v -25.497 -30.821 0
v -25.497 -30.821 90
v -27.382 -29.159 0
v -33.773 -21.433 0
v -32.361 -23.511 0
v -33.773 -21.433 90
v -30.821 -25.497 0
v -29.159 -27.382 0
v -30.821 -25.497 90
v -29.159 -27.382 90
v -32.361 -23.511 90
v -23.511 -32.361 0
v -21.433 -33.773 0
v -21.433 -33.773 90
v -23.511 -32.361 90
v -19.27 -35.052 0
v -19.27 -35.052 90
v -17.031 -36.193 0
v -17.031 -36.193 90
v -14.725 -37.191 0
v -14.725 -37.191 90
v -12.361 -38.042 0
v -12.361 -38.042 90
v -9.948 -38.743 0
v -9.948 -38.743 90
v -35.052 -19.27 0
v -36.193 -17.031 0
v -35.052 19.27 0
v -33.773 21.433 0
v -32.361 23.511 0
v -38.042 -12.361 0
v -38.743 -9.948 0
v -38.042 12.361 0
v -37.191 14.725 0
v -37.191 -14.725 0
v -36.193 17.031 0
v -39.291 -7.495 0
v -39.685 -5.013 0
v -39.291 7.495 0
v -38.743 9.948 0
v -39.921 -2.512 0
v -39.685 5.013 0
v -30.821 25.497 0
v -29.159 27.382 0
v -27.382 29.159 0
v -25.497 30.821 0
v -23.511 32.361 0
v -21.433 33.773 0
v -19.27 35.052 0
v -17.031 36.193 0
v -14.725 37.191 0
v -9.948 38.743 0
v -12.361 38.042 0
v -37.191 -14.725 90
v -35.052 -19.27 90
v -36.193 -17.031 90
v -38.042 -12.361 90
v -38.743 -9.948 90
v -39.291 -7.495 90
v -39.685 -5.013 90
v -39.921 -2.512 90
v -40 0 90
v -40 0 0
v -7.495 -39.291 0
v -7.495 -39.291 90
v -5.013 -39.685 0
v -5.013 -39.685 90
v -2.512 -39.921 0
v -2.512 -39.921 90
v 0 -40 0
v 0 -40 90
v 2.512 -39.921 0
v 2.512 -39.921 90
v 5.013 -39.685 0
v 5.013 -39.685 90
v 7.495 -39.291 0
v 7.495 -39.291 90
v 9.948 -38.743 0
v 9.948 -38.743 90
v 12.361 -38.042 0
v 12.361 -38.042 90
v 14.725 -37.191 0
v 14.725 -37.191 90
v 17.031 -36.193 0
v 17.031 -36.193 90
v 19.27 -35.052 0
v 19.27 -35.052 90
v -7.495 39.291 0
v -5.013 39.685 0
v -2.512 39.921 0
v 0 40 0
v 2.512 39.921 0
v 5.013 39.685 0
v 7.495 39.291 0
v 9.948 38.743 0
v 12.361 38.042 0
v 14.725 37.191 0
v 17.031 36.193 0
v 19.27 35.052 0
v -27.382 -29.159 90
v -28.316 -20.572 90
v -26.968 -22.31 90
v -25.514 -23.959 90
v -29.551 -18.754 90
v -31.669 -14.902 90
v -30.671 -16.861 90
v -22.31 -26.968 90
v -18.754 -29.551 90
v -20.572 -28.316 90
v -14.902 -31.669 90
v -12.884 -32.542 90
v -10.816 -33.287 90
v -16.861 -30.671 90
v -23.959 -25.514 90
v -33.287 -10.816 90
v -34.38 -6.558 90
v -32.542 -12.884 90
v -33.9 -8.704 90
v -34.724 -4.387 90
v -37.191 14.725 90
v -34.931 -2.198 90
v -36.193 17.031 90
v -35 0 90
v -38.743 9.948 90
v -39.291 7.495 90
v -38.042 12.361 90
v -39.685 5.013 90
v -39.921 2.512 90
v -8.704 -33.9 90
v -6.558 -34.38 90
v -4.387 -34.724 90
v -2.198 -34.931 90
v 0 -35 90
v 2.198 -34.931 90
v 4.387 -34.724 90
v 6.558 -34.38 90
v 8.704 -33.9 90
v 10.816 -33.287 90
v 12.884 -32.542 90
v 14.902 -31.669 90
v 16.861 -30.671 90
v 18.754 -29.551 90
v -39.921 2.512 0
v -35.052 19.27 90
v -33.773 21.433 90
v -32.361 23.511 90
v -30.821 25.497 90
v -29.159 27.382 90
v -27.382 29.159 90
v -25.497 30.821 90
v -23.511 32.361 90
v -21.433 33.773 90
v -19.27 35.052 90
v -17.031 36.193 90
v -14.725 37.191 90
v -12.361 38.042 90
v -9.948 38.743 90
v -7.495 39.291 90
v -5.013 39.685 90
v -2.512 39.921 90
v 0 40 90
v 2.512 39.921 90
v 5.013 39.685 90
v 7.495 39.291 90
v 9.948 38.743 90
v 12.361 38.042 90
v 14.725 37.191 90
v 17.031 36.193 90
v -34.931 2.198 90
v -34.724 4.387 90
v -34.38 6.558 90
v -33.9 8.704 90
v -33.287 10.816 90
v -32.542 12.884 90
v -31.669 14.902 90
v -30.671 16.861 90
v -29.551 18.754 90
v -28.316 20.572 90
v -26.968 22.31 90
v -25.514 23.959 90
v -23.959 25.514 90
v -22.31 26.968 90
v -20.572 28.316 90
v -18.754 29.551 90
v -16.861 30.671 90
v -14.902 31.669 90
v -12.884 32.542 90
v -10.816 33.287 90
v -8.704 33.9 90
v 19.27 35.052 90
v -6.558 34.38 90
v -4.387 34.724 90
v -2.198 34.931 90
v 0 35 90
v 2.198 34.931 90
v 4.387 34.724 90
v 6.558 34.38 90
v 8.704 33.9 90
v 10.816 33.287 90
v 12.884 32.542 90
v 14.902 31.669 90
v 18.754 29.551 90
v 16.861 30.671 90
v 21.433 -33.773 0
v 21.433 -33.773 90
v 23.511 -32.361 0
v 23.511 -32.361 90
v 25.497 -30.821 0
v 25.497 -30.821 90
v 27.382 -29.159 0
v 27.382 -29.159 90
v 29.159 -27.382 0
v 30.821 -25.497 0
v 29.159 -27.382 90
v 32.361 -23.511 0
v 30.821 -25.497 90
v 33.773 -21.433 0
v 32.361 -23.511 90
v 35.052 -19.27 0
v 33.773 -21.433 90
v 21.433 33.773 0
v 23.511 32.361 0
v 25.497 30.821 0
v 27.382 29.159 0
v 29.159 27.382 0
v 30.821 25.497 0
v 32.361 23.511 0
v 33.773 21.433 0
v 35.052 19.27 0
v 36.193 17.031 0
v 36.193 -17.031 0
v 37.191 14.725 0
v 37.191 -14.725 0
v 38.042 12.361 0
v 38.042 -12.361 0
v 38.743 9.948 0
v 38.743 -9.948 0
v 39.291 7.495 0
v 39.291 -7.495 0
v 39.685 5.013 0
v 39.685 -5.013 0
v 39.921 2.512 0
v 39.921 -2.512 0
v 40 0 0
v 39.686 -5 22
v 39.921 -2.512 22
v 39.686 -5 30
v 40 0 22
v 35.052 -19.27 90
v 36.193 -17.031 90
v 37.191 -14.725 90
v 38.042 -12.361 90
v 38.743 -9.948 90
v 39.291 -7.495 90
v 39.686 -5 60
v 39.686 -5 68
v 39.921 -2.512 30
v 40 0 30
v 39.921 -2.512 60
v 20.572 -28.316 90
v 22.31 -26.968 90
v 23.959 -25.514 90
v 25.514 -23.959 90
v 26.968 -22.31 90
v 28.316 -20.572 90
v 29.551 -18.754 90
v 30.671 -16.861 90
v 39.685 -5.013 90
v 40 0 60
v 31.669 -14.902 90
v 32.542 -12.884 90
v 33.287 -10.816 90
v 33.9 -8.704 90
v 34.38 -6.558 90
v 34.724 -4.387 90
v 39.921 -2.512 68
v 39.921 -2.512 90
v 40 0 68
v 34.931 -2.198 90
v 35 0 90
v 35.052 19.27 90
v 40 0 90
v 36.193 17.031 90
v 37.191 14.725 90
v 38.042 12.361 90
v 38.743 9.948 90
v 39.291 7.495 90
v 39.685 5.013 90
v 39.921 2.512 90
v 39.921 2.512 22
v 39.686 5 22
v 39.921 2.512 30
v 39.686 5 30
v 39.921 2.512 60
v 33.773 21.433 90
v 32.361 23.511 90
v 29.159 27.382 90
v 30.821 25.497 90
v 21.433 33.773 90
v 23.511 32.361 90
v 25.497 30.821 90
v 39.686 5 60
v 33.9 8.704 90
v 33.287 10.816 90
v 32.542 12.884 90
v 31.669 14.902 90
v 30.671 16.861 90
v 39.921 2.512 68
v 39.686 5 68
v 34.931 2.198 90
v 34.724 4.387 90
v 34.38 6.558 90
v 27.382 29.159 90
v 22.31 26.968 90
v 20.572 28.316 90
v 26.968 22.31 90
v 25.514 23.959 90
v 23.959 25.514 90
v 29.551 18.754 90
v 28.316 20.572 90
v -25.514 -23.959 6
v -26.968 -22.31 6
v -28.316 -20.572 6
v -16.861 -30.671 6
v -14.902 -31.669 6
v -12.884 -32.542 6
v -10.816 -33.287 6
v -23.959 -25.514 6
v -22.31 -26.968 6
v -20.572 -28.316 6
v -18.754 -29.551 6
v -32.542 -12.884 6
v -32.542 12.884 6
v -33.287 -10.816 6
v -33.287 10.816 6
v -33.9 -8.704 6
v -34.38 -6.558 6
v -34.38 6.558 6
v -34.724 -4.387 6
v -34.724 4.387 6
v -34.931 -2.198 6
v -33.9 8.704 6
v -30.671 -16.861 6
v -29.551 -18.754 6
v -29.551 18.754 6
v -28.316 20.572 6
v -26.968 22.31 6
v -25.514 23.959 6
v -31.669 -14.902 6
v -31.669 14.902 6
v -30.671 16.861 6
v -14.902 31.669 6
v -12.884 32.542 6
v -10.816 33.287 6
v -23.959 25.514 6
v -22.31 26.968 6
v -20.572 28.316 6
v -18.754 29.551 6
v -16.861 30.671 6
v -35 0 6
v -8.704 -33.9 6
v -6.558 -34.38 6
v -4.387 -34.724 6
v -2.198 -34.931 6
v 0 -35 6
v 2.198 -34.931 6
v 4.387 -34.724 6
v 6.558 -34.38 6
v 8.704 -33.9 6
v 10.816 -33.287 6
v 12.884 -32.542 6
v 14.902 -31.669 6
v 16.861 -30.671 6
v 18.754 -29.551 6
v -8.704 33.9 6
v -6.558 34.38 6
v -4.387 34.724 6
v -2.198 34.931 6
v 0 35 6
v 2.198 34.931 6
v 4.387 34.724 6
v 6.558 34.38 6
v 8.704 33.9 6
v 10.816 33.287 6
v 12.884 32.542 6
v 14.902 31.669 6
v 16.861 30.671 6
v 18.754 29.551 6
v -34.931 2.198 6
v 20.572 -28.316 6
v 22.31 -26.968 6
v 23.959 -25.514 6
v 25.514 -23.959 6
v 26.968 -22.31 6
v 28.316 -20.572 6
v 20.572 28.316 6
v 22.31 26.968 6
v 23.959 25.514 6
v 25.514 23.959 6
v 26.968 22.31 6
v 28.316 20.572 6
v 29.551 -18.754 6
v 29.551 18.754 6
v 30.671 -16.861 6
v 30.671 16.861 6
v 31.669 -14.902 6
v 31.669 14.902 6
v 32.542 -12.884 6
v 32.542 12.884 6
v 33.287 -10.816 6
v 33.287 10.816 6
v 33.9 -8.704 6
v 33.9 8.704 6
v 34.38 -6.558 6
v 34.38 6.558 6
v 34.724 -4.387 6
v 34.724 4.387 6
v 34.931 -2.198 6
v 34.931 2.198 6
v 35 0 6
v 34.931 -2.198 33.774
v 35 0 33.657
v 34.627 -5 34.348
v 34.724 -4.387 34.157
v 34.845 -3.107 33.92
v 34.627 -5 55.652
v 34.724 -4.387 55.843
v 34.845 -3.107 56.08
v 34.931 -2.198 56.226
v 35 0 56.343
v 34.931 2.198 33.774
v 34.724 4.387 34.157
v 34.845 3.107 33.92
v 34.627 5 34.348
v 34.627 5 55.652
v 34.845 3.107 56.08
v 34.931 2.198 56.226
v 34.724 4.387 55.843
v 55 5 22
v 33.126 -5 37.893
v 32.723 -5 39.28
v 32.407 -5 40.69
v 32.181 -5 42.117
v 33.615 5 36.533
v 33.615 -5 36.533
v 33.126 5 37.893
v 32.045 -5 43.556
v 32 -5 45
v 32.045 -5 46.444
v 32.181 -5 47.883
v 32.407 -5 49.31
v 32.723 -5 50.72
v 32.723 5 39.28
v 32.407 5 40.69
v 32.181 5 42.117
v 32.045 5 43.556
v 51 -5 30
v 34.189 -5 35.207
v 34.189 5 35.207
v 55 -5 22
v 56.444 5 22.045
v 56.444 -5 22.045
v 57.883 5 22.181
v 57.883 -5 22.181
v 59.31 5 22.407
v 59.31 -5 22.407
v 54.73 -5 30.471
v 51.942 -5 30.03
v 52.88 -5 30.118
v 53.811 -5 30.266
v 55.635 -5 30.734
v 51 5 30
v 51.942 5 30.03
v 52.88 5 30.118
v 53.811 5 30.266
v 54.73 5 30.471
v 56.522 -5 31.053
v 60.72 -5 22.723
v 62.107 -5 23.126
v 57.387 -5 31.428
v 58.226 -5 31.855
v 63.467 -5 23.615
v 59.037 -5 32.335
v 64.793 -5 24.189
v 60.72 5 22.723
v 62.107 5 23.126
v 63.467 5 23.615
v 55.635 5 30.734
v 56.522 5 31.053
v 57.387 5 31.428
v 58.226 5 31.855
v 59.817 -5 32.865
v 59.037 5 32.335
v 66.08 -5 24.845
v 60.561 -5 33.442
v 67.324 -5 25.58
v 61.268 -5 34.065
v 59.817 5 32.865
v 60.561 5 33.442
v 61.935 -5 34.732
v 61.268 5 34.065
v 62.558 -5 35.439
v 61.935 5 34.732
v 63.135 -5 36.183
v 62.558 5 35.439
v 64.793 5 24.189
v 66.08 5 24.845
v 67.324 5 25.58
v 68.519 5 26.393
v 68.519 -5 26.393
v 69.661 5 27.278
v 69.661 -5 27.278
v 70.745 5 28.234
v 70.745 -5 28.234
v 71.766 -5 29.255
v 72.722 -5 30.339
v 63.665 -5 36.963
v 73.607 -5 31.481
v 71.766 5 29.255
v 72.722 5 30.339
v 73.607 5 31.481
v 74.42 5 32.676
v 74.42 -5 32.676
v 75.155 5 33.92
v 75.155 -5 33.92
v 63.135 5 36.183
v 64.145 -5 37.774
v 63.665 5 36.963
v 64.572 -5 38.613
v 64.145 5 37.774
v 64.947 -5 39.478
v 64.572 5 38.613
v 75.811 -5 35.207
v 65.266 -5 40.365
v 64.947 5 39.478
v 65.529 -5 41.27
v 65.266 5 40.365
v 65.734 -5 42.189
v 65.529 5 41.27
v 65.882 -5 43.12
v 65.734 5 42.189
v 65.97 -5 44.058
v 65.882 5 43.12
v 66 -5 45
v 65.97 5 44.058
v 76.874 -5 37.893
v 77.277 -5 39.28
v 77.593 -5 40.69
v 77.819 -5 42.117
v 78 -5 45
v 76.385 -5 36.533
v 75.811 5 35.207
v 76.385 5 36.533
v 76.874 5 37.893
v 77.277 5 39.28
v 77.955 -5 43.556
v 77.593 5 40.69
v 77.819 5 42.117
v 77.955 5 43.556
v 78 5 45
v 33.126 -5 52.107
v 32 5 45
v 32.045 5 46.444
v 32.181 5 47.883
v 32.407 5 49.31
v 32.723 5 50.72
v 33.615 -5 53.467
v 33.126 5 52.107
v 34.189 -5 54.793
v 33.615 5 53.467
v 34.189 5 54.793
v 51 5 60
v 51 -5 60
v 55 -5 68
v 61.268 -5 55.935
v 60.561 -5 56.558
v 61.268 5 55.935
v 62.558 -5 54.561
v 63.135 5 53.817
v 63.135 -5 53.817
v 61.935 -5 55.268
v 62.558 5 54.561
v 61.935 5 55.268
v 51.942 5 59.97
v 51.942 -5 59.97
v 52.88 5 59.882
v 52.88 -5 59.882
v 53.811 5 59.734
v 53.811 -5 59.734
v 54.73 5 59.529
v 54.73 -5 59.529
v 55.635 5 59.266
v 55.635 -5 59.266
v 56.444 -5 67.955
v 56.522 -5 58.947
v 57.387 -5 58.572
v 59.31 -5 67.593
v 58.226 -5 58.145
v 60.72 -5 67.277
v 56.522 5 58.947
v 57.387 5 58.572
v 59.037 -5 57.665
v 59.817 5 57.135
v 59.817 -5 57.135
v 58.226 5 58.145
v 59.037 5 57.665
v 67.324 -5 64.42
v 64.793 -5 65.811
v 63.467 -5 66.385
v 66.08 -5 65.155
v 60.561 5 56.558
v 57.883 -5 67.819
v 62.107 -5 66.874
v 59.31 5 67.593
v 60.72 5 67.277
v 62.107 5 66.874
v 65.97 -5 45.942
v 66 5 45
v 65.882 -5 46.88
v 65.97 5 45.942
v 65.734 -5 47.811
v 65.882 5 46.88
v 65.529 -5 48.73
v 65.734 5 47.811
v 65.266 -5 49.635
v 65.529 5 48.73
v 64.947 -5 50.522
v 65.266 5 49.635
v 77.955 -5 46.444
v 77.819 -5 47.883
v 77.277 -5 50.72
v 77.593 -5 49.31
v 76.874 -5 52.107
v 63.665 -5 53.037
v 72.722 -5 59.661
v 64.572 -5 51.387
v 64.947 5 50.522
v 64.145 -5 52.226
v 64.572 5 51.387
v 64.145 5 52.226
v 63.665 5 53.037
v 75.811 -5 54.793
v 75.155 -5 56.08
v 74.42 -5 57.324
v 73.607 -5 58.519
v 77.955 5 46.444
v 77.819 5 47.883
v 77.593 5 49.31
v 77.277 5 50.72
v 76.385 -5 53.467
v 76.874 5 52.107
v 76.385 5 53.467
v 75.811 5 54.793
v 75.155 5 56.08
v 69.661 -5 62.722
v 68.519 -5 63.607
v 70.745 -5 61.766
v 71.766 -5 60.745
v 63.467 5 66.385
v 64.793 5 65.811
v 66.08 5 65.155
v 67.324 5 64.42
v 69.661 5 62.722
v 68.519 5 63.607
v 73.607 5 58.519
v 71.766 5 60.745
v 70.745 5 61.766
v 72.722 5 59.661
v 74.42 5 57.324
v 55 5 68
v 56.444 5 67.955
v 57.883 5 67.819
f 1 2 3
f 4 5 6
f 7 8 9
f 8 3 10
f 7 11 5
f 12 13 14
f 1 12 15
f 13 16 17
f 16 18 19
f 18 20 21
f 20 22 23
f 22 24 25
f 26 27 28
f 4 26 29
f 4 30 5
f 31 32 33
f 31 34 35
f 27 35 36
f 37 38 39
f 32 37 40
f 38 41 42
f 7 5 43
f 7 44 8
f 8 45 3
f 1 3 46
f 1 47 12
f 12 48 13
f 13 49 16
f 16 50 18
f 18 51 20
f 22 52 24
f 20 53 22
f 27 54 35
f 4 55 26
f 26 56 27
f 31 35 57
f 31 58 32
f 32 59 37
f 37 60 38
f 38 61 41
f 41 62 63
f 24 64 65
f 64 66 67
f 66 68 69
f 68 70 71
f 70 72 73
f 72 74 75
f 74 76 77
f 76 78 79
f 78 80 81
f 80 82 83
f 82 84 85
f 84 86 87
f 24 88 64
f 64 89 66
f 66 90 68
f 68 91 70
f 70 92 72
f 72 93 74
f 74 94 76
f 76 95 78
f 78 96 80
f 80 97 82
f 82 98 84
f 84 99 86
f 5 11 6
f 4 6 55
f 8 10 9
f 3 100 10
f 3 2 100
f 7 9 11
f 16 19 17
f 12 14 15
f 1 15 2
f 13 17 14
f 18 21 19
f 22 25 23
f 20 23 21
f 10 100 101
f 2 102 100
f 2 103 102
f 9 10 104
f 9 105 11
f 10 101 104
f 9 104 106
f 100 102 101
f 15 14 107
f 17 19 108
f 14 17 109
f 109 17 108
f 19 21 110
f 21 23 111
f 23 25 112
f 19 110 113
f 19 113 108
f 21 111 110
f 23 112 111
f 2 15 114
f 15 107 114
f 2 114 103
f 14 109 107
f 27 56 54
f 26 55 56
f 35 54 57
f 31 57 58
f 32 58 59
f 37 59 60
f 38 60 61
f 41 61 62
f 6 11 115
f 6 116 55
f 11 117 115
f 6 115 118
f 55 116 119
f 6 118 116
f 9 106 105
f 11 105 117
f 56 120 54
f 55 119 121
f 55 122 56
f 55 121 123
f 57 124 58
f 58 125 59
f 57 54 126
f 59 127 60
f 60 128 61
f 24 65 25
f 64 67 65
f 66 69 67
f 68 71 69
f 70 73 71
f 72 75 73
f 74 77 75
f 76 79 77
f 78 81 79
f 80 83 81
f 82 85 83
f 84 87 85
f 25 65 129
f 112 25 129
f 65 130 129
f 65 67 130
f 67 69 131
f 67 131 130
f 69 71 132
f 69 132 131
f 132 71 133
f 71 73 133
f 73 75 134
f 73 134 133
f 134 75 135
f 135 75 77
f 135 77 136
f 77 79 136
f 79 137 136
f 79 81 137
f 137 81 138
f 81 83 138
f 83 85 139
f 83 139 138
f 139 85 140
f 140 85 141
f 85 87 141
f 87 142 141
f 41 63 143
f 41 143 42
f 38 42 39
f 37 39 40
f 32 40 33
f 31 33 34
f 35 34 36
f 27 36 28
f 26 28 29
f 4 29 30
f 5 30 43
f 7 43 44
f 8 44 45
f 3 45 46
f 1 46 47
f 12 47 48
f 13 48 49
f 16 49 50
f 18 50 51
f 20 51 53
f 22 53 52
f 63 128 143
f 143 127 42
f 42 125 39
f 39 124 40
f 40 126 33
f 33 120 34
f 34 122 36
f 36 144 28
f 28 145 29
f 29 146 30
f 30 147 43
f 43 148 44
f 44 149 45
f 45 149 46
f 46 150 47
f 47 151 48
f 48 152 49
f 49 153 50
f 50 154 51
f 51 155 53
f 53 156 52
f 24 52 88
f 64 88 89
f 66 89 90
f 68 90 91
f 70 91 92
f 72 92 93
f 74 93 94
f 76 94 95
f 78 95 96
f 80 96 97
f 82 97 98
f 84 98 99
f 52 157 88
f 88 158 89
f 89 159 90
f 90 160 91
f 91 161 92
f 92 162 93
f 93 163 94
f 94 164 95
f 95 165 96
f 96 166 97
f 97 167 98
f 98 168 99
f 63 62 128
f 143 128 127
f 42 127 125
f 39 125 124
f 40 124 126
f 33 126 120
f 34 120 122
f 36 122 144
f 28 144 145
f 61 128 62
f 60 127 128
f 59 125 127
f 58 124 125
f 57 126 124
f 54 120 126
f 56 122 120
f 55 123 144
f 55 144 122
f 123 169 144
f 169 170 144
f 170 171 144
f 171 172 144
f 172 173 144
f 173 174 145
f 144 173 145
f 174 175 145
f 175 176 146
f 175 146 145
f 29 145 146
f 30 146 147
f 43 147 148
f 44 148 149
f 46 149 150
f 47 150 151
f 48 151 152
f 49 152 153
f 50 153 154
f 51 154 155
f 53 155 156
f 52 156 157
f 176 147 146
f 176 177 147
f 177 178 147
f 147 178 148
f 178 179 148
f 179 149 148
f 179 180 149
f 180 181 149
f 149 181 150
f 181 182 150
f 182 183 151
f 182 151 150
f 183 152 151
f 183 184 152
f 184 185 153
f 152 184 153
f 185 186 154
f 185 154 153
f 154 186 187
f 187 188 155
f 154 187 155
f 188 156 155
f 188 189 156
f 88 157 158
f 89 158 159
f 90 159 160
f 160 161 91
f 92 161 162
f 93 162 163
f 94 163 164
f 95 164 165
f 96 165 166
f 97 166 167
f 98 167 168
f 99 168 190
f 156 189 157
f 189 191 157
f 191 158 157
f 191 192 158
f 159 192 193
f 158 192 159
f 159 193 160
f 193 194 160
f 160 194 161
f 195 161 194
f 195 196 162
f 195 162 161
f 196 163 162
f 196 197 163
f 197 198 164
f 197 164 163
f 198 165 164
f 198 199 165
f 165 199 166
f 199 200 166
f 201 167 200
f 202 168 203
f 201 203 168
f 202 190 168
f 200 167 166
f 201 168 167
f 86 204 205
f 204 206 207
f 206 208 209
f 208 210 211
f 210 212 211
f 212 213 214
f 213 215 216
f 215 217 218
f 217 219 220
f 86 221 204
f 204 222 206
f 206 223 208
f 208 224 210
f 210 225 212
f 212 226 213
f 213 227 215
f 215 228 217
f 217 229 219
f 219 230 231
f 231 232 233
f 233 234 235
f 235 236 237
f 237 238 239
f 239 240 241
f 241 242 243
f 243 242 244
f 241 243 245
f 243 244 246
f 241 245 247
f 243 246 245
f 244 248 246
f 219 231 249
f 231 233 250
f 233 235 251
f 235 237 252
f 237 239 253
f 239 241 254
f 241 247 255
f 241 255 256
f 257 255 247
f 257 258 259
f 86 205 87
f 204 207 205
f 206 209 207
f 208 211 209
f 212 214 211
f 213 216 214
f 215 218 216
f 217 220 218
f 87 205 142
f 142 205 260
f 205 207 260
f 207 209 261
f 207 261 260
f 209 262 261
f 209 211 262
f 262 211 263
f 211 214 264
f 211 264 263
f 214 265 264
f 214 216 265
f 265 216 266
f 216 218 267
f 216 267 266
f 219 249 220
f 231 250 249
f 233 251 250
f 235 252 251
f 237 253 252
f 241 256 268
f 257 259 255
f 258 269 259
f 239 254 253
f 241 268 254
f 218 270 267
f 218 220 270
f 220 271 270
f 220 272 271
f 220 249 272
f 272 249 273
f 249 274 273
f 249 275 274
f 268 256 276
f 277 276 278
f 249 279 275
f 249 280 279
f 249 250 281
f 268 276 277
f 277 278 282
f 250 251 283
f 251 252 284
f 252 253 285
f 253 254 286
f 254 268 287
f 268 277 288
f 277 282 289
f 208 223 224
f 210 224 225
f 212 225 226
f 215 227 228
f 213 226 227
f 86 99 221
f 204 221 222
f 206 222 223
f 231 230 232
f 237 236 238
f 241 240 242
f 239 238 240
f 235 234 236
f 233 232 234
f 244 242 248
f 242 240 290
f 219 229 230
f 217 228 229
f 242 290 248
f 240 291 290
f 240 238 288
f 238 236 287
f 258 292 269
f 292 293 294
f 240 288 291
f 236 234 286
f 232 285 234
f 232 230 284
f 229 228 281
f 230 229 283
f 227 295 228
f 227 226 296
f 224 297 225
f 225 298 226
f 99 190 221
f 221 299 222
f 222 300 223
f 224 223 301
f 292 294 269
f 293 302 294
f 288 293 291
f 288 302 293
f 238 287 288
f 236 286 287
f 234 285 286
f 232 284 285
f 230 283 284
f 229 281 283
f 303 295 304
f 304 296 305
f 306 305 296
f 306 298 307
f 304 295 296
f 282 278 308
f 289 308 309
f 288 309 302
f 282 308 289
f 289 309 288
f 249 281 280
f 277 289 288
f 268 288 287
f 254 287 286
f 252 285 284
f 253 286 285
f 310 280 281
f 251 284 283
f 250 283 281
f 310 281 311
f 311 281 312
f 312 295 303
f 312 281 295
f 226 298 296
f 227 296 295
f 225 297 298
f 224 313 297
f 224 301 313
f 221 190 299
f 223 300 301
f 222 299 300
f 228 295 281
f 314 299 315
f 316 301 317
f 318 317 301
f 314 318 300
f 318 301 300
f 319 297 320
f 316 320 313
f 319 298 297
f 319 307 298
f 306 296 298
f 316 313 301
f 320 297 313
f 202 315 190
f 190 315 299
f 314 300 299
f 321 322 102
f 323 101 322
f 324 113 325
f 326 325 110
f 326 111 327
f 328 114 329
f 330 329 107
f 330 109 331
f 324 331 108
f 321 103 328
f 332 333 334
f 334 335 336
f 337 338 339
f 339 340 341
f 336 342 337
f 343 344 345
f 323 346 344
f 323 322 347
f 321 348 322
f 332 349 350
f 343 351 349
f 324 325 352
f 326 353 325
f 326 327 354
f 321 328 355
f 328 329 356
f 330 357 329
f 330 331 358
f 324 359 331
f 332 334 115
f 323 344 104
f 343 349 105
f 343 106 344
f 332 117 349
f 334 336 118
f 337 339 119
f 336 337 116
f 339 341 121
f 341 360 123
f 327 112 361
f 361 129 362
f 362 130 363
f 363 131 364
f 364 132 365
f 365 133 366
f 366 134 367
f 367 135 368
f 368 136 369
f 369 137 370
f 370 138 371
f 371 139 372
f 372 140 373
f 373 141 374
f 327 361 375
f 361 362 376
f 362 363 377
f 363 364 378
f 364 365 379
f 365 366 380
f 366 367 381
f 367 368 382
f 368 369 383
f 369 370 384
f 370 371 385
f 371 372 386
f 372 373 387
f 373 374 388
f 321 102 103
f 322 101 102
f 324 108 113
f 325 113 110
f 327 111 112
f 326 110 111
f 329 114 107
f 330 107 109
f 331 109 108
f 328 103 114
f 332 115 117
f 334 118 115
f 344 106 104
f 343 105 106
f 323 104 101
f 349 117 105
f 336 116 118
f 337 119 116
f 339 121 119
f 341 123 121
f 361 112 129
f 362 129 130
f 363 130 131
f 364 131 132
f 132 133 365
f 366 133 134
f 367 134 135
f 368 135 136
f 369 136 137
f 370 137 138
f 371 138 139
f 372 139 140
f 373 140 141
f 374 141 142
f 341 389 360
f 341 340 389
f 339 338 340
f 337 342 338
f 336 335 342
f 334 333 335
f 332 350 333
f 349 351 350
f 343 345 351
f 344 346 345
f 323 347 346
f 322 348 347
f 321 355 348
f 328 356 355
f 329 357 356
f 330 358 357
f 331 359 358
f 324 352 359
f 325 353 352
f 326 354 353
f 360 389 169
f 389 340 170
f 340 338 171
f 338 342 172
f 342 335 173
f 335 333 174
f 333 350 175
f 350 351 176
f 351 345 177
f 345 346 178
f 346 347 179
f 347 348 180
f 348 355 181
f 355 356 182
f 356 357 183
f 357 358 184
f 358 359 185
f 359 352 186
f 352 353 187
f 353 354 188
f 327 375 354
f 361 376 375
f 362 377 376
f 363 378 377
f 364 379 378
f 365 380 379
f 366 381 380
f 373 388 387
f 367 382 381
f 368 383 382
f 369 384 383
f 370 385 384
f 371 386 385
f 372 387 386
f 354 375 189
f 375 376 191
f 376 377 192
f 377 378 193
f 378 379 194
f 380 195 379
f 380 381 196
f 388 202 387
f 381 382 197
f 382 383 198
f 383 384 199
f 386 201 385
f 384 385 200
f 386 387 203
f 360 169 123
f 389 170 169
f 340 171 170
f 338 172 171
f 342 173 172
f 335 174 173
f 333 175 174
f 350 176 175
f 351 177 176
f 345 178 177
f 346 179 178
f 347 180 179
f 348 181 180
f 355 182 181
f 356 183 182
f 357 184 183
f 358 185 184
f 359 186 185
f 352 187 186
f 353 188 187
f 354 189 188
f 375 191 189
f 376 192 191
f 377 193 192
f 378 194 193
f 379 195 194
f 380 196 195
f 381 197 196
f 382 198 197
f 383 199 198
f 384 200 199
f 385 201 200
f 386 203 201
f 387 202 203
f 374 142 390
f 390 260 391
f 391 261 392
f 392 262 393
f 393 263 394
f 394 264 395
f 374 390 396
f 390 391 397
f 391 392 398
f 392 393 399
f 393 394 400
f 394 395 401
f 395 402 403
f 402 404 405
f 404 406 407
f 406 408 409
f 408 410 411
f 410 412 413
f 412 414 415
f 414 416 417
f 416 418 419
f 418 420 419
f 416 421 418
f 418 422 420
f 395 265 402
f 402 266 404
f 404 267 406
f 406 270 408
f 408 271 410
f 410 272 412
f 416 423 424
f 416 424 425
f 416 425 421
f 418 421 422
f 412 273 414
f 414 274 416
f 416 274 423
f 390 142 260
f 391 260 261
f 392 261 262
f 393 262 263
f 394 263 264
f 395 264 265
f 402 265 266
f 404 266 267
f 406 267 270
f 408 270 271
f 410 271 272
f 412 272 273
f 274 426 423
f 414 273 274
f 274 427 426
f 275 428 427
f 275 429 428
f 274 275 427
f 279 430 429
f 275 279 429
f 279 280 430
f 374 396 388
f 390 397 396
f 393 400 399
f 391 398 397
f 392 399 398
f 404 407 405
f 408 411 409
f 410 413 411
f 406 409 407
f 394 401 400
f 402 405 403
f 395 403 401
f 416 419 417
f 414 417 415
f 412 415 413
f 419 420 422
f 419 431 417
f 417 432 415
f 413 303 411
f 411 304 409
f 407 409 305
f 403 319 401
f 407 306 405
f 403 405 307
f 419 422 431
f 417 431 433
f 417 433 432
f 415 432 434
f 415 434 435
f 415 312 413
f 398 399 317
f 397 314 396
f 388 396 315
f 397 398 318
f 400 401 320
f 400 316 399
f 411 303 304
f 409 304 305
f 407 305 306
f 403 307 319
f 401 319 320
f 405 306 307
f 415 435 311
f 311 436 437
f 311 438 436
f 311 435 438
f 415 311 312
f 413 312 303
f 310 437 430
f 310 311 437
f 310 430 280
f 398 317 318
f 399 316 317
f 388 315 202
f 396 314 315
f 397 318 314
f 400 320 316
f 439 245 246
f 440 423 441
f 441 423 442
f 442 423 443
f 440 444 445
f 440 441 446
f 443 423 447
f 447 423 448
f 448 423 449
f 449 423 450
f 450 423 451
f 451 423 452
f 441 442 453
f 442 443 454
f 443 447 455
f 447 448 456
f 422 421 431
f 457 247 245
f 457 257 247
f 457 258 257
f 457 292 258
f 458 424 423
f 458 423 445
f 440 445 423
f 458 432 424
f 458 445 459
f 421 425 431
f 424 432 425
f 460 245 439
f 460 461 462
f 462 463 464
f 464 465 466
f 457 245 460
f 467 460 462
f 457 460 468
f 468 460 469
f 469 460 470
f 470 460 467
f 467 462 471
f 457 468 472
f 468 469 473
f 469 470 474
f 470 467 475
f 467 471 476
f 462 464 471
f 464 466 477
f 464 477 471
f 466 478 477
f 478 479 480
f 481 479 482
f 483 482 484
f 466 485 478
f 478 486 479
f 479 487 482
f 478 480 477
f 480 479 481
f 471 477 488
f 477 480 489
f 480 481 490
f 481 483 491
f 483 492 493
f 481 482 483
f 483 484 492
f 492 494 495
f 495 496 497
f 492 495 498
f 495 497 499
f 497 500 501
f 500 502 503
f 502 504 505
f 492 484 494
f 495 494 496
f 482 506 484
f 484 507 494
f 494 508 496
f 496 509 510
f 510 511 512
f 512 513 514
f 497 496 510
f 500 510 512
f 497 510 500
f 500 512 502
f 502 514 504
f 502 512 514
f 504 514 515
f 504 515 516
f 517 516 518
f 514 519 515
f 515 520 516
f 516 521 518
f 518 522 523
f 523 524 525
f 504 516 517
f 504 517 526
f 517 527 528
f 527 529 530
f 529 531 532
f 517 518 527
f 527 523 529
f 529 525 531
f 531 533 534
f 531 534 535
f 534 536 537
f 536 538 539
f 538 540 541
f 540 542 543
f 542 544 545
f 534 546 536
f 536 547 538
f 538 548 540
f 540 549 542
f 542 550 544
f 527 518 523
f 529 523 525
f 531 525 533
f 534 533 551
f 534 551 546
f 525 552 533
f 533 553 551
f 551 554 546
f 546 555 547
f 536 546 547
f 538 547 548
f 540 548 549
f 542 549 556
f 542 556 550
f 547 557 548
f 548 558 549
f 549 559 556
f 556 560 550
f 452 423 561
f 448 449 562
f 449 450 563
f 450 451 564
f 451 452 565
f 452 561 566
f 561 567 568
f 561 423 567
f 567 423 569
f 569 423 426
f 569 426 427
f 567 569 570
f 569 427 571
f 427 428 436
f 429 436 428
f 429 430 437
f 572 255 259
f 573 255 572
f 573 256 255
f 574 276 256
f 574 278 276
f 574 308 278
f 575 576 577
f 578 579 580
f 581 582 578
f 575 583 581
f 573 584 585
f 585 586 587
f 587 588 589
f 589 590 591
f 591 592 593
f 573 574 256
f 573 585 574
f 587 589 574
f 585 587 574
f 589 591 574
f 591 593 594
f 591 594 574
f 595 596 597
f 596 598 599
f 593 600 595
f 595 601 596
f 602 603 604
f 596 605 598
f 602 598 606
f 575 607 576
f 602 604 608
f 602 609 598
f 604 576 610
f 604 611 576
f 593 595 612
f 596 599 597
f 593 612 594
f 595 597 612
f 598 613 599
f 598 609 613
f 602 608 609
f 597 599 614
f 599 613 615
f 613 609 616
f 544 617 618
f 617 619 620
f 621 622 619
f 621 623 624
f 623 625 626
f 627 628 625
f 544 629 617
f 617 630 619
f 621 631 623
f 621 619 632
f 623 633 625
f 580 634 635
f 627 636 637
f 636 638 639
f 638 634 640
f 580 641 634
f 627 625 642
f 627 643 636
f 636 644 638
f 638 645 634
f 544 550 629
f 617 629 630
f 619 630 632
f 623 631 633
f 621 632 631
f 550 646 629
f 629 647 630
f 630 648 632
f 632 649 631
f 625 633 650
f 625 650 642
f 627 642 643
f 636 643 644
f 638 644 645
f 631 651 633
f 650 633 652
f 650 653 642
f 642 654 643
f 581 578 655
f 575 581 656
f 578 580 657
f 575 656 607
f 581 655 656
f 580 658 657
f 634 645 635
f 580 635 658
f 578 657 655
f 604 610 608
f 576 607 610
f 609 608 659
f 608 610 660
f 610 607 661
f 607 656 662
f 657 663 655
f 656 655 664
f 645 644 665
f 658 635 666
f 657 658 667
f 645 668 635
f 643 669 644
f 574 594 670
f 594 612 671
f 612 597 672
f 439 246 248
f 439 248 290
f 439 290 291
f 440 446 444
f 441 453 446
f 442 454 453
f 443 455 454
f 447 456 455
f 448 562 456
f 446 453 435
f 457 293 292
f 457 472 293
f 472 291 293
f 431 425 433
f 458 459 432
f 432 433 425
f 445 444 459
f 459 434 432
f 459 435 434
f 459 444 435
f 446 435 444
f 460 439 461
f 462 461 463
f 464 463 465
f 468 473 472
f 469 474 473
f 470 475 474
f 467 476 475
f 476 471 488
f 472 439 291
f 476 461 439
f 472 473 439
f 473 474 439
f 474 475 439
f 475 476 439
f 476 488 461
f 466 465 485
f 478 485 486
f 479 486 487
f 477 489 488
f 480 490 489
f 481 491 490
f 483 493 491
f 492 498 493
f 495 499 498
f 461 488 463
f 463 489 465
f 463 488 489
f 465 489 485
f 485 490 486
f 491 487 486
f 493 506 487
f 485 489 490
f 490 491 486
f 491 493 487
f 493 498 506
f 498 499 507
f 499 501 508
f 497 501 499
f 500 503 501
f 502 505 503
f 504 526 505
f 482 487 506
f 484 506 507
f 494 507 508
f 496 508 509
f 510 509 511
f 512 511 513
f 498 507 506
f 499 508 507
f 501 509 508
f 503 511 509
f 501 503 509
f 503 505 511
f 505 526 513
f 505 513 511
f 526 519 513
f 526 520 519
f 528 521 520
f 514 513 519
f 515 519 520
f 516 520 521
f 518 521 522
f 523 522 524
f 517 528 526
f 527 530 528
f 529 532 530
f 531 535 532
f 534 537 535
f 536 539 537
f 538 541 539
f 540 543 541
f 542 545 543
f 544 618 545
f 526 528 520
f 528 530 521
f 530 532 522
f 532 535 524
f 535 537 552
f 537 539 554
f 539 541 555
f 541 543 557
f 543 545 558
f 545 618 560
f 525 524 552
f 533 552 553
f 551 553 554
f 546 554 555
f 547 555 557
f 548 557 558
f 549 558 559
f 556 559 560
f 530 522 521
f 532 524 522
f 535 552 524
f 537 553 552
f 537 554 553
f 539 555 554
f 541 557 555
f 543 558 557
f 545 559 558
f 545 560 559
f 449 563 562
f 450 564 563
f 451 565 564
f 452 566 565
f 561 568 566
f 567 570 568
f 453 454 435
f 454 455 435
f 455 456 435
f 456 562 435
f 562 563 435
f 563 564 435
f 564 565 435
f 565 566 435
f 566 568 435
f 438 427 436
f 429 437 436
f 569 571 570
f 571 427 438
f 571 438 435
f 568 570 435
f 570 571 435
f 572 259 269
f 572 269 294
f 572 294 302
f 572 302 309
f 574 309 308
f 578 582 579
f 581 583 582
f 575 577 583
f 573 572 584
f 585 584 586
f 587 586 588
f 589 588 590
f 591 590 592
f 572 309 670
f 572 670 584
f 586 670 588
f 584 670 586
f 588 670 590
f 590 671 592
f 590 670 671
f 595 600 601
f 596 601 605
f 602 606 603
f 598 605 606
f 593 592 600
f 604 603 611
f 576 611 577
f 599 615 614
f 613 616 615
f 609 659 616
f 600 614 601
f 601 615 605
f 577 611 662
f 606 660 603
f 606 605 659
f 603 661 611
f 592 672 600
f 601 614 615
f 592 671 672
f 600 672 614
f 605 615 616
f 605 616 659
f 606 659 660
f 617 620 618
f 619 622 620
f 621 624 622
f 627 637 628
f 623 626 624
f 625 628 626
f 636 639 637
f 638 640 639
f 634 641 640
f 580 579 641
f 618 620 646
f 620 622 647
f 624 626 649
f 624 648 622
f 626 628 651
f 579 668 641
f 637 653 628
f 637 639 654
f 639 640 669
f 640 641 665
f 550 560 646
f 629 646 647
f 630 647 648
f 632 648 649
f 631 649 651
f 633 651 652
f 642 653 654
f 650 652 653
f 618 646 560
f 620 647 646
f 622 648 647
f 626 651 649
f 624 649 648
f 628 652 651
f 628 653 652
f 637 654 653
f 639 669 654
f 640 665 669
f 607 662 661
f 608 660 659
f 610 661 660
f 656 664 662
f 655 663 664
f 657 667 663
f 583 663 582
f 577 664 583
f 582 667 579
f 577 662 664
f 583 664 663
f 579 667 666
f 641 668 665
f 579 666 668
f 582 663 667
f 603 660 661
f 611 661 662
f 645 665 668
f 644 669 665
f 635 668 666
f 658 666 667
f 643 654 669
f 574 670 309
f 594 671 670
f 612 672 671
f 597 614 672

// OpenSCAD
// マグカップ

$fn = 100;

// 本体パラメータ
outer_d = 80;
inner_d = 70;
height = 90;
bottom_thickness = 6;

// 取手パラメータ
handle_inner_h = 30;   // 取手の内側の空間高さ
handle_inner_w = 25;   // 取手の内側の空間幅
handle_thickness = 8;  // 取手の太さ
handle_depth = 10;     // 取手の奥行き(押し出し方向)

module mug_body() {
    difference() {
        cylinder(d = outer_d, h = height);
        translate([0, 0, bottom_thickness])
            cylinder(d = inner_d, h = height - bottom_thickness + 1);
    }
}

module handle() {
    // 取手は +X 方向に付く D 字形状
    // 外側のD字 - 内側のD字 で輪郭を作り、Y方向に押し出す
    
    outer_w = handle_inner_w + 2 * handle_thickness;
    outer_h = handle_inner_h + 2 * handle_thickness;
    
    // 本体側のX位置(本体外周にしっかり食い込ませる)
    base_x = outer_d / 2 - 2;
    
    translate([base_x, -handle_depth/2, height/2])
        rotate([-90, 0, 0])
            linear_extrude(height = handle_depth)
                difference() {
                    // 外側D字
                    union() {
                        square([outer_w/2, outer_h], center = false)
                            ;
                        translate([0, outer_h/2 - outer_h/2 + 0, 0]);
                        // 半円部分
                    }
                    // 内側D字をくり抜く
                }
}

// 上記が複雑なので書き直し
module d_shape(w, h) {
    // 左端が直線(x=0)、右側が半円のD字
    // w: 全体の幅、h: 高さ
    // 半円の半径 = h/2、矩形部分の幅 = w - h/2
    rect_w = w - h/2;
    union() {
        if (rect_w > 0)
            translate([0, -h/2]) square([rect_w, h]);
        translate([rect_w, 0]) circle(d = h);
    }
}

module handle2() {
    outer_w = handle_inner_w + handle_thickness; // 直線部+半円分相当に調整
    outer_h = handle_inner_h + 2 * handle_thickness;
    inner_w = handle_inner_w;
    inner_h = handle_inner_h;
    
    base_x = outer_d / 2 - 3; // 本体に少し食い込ませる
    
    translate([base_x, 0, height/2])
        rotate([90, 0, 0])
            linear_extrude(height = handle_depth, center = true)
                difference() {
                    d_shape(outer_w + handle_thickness, outer_h);
                    translate([0, 0])
                        d_shape(inner_w + handle_thickness/2, inner_h);
                }
}

union() {
    mug_body();
    handle2();
}
